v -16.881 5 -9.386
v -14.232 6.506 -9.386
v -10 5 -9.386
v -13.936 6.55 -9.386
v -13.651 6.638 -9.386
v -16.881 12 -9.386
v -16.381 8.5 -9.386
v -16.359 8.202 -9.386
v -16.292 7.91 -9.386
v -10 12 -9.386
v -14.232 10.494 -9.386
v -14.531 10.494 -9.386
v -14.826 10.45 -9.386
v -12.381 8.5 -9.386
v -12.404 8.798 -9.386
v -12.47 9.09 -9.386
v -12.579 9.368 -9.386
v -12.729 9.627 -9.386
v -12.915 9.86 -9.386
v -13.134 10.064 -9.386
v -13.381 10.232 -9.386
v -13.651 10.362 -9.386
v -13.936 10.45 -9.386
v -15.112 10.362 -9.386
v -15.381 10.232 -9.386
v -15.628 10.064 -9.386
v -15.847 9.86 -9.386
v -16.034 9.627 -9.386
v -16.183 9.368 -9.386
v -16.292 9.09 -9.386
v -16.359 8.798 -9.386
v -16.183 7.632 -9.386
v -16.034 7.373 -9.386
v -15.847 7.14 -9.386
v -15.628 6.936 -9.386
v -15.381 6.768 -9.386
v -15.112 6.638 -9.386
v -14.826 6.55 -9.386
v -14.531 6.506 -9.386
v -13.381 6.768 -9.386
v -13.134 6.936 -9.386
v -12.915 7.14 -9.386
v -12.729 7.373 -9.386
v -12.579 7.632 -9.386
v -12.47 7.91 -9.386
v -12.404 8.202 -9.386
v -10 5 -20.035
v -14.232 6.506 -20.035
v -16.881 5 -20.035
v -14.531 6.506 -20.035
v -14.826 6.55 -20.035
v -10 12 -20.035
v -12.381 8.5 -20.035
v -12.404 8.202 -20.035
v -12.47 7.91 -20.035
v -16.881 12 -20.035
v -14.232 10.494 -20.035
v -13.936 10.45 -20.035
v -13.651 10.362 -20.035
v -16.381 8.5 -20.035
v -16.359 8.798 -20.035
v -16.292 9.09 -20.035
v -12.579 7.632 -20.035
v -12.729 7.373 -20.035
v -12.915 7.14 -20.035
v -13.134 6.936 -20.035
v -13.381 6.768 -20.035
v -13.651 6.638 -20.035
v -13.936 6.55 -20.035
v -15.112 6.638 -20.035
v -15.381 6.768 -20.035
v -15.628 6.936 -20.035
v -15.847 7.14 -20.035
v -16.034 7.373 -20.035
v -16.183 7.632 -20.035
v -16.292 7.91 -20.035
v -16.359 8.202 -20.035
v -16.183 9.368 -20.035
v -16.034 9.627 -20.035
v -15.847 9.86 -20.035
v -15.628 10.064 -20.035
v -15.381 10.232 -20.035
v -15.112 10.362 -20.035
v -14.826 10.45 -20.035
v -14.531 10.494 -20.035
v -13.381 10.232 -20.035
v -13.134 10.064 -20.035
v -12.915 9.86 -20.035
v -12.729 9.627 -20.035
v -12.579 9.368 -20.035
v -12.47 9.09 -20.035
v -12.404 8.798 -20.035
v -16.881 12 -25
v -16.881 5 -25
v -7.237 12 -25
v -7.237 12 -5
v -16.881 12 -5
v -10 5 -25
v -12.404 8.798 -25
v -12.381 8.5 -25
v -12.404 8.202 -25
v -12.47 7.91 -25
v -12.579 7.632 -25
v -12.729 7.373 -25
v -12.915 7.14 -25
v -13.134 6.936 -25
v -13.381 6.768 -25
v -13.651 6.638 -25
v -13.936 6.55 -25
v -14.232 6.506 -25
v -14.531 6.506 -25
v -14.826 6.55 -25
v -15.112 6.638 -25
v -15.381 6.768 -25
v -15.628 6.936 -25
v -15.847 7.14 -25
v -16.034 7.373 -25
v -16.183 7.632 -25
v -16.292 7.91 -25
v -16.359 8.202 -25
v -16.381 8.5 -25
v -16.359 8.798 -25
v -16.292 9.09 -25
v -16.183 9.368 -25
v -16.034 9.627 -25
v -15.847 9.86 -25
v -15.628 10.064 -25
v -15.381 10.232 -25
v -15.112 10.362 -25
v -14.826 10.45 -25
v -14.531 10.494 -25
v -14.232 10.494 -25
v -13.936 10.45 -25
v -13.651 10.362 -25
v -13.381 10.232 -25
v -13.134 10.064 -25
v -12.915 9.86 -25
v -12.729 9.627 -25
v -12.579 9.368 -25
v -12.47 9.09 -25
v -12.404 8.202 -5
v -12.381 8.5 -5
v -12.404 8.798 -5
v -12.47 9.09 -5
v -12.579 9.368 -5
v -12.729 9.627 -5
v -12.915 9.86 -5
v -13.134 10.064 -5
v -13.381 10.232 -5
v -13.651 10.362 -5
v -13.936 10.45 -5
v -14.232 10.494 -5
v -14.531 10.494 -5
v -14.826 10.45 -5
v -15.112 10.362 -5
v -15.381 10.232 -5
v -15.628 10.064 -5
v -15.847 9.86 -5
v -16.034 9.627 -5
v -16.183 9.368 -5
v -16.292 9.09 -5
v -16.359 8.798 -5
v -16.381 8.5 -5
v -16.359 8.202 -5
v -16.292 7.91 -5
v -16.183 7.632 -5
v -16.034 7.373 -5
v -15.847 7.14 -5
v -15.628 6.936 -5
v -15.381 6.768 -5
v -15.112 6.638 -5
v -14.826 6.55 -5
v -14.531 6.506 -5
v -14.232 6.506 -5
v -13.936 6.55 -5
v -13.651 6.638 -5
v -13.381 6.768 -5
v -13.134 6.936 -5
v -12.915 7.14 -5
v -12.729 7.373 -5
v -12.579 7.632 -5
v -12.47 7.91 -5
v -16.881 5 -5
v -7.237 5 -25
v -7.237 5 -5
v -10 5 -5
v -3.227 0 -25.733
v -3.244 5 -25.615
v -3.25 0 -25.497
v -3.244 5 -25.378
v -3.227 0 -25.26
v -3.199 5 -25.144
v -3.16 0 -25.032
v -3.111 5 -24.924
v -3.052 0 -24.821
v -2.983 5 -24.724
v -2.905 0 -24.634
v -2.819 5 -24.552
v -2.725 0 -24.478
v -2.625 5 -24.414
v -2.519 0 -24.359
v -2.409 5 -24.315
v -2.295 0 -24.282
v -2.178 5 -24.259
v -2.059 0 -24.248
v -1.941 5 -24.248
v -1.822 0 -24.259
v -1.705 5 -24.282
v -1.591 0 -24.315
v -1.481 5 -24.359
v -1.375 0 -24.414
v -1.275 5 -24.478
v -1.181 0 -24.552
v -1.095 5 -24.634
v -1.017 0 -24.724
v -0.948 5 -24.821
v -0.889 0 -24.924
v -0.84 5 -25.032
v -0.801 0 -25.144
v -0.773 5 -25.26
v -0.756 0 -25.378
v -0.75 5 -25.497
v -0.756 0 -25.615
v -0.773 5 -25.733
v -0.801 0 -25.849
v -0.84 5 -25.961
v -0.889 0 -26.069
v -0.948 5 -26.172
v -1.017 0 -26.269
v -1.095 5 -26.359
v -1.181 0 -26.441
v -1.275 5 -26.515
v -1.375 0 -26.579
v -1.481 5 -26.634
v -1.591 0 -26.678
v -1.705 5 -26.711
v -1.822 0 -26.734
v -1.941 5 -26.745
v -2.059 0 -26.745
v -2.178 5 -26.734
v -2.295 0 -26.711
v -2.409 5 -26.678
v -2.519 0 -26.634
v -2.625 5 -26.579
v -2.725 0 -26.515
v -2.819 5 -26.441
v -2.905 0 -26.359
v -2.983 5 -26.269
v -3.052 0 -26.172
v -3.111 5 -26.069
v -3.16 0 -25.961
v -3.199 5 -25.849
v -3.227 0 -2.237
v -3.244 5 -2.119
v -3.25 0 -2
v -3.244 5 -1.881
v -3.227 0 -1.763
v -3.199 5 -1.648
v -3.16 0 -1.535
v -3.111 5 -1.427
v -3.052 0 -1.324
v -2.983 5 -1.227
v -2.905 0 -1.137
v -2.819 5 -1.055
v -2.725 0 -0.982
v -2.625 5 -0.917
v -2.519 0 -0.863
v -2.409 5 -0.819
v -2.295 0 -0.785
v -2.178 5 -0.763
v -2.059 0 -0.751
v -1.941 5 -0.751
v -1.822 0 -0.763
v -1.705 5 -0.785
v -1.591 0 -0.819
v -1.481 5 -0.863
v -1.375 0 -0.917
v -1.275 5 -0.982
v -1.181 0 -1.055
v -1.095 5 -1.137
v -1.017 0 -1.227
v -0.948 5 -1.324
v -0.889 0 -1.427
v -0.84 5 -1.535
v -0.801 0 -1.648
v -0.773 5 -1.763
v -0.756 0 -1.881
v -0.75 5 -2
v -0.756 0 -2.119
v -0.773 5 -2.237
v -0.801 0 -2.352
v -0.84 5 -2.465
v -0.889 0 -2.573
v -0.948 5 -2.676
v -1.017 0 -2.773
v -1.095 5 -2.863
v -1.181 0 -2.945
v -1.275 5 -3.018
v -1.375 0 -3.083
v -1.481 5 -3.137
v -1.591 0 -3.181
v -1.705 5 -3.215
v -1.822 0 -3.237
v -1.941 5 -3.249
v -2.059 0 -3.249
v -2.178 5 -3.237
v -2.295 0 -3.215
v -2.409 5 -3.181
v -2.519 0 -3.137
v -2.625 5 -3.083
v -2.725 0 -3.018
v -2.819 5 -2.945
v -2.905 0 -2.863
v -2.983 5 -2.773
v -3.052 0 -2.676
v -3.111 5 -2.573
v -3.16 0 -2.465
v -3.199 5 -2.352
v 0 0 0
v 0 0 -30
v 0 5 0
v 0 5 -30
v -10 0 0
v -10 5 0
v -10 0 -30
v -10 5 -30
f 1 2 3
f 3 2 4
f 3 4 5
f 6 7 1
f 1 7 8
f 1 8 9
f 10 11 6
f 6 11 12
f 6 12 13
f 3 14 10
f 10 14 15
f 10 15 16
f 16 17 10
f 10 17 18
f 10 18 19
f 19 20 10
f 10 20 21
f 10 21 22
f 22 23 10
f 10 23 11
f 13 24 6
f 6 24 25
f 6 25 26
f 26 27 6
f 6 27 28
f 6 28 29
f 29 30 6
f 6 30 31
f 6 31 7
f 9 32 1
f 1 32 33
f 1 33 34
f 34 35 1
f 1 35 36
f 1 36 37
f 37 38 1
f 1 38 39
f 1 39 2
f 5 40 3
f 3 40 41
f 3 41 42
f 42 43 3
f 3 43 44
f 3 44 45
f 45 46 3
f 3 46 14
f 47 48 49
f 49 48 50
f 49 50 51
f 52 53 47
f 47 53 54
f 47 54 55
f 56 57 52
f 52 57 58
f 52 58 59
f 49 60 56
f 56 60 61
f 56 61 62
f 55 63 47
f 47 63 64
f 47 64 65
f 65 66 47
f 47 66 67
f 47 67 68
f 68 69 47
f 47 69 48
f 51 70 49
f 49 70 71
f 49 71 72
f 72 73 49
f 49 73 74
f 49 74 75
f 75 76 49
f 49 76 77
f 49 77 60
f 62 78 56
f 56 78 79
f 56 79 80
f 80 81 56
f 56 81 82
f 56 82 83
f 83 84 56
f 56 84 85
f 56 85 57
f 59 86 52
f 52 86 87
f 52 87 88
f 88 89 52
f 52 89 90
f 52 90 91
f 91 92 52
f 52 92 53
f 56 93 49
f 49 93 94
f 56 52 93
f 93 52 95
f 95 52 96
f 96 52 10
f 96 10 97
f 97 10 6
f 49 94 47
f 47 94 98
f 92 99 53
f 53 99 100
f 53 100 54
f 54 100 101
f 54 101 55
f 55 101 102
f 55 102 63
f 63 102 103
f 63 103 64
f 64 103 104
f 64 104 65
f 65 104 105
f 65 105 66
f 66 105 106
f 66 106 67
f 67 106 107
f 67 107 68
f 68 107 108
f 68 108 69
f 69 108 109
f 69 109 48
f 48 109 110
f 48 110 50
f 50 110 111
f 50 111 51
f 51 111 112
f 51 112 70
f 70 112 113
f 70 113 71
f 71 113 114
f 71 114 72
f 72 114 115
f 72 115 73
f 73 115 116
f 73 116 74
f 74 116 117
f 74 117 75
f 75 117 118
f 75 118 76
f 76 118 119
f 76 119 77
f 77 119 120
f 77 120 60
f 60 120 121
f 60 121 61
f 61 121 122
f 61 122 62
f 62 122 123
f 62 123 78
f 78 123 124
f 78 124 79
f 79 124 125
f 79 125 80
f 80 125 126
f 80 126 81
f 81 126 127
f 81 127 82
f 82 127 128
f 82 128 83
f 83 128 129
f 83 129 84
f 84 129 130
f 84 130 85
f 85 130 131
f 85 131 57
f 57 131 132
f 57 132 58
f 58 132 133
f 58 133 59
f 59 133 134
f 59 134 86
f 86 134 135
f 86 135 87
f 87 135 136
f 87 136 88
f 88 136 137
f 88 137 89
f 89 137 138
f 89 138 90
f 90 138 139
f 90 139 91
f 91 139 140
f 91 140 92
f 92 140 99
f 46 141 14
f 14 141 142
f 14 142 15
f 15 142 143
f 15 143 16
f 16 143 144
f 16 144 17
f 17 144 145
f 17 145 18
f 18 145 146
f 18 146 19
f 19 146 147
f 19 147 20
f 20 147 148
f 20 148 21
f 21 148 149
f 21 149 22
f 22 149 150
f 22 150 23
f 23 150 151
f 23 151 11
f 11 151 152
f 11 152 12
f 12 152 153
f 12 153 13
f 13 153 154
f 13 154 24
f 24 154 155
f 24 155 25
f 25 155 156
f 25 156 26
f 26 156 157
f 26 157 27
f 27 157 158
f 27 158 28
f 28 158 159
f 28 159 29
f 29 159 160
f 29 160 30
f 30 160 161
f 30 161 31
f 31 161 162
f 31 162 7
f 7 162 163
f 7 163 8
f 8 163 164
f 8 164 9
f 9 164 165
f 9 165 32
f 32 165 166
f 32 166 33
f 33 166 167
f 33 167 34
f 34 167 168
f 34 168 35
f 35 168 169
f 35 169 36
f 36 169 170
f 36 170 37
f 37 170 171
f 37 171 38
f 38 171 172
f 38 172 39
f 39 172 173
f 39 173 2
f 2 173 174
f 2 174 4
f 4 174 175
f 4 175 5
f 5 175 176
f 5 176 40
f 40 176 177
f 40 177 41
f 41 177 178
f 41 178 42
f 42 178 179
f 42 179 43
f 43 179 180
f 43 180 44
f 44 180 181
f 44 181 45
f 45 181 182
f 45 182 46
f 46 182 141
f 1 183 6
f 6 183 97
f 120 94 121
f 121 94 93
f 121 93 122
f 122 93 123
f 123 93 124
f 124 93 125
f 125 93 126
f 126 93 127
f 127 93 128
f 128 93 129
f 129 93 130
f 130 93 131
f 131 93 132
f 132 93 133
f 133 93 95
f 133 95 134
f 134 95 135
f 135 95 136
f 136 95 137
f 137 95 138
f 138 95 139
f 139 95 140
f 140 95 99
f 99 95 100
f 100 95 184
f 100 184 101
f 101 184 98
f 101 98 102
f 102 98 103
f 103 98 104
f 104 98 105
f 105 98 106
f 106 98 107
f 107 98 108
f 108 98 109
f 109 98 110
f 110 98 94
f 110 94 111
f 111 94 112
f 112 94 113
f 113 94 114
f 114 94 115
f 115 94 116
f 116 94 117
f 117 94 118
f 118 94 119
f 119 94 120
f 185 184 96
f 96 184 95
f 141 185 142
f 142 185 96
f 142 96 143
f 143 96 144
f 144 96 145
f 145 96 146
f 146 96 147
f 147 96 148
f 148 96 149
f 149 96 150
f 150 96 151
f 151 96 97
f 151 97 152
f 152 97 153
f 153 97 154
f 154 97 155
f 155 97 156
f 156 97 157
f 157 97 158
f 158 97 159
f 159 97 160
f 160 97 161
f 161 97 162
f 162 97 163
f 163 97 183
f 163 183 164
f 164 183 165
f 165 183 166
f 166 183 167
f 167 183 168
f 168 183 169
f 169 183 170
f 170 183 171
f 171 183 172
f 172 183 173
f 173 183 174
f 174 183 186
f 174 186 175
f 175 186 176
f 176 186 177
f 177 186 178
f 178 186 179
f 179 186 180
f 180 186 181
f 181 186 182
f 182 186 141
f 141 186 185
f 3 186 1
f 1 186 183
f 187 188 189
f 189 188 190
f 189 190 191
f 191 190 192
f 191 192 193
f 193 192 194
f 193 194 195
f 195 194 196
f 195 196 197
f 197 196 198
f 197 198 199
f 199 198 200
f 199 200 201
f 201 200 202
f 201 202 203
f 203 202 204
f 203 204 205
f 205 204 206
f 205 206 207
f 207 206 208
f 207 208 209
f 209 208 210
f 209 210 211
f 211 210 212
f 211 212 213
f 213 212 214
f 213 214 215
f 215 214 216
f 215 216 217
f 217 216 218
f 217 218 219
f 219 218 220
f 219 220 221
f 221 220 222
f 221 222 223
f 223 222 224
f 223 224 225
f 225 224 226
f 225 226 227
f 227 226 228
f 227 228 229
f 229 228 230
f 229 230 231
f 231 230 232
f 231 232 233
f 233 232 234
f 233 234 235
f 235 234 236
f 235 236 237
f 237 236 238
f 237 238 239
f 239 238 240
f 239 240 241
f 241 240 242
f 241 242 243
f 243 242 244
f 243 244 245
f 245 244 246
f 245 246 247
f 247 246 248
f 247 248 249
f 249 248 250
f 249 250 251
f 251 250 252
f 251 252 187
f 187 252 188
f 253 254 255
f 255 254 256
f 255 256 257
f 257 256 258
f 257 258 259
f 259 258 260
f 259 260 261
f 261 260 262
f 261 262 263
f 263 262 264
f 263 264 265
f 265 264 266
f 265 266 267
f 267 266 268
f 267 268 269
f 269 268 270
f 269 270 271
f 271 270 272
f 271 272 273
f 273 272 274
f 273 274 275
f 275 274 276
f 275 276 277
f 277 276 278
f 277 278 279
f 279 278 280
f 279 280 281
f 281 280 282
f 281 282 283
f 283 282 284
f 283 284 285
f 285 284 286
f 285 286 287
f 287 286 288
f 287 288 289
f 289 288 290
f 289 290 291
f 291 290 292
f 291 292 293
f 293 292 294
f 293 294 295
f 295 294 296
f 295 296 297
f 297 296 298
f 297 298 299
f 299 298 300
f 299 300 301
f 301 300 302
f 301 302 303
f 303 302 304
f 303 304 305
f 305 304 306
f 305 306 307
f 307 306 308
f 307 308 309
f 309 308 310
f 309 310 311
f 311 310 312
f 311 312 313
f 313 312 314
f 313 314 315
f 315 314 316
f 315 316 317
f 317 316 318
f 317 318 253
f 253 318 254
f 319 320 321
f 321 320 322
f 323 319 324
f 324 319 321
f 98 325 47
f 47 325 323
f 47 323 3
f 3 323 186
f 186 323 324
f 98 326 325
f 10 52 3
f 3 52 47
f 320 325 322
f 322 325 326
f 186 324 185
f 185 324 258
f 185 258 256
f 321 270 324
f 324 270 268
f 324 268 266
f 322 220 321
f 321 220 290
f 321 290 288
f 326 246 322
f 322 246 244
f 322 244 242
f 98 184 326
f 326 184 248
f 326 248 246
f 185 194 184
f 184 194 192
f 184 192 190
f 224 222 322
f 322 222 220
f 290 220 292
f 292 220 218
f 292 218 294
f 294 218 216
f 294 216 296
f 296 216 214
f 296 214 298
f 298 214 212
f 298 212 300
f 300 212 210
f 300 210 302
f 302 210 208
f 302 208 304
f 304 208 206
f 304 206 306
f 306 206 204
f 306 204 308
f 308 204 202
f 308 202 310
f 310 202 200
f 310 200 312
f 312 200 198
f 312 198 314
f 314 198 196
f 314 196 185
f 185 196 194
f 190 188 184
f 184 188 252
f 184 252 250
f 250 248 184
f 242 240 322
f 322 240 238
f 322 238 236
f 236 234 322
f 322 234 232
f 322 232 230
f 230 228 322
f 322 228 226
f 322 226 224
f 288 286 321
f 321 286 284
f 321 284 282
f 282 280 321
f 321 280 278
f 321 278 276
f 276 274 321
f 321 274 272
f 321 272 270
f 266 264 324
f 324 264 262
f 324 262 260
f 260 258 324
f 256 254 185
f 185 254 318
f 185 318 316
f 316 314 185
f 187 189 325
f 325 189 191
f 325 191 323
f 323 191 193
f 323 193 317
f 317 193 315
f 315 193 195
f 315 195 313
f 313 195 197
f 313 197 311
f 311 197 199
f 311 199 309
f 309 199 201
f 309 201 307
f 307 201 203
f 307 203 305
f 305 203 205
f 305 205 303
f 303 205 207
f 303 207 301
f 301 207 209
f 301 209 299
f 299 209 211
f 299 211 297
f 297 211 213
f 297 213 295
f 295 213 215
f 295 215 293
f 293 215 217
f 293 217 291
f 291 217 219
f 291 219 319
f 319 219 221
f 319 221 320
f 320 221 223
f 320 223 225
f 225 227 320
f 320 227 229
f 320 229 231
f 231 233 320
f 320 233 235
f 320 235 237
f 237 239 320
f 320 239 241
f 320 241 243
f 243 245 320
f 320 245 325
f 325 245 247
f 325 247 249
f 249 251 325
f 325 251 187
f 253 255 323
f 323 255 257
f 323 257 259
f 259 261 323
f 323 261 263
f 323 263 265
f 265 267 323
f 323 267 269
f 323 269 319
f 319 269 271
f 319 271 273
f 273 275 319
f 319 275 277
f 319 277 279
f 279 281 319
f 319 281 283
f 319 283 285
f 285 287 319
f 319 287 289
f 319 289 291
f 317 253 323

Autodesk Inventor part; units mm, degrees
ref_plane "YZ Plane" through (0, 0, 0) normal (1, 0, 0) x (0, 1, 0)
ref_plane "XZ Plane" through (0, 0, 0) normal (0, 1, 0) x (-1, 0, 0)
ref_plane "XY Plane" through (0, 0, 0) normal (0, 0, 1) x (1, 0, 0)
sketch "Sketch1" plane through (0, 0, 0) normal (0, 1, 0) x (-1, 0, 0)
  line L0 (0, 0) -> (10, 0)
  line L1 (10, 0) -> (10, -30)
  line L2 (10, -30) -> (0, -30)
  line L3 (0, -30) -> (0, 0)
  dimension "d0" = 30
  dimension "d1" = 10
extrude "Extrusion1" add sketch "Sketch1" along normal blind 5
sketch "Sketch2" plane through (0, 5, 0) normal (0, 1, 0) x (1, 0, 0)
  circle A0 centre (-2, 2) radius 1.25
  circle A1 centre (-2, 25.4965) radius 1.25
  line L0 (0, 0) -> (0, 30) projected
  line L1 (-10, 0) -> (0, 0) projected
  dimension "d4" = 2.5
  dimension "d5" = 2.5
  dimension "d6" = 23.4965
  dimension "d7" = 2
  dimension "d8" = 2
extrude "Extrusion2" cut sketch "Sketch2" against normal through all
sketch "Sketch3" plane through (0, 5, 0) normal (0, 1, 0) x (1, 0, 0)
  line L0 (-10, 30) -> (-10, 0) projected
  line L1 (-10, 5) -> (-10, 25)
  line L2 (-10, 25) -> (-16.8813, 25)
  line L3 (-16.8813, 25) -> (-16.8813, 5)
  line L4 (-16.8813, 5) -> (-10, 5)
  line L5 (-7.2371, 5) -> (-7.2371, 25)
  line L6 (-7.2371, 25) -> (-10, 25)
  line L7 (-10, 5) -> (-7.2371, 5)
  line L8 (-10, 0) -> (0, 0) projected
  dimension "d11" = 20
  dimension "d22" = 5
extrude "Extrusion3" add sketch "Sketch3" along normal blind 7
sketch "Sketch4" plane through (-10, 5, -25) normal (0, 0, -1) x (-1, 0, 0)
  circle A0 centre (4.3813, 3.5) radius 2
  line L0 (6.8813, 0) -> (6.8813, 7) projected
  point P0 (-10, -5)
  dimension "d14" = 4
  dimension "d15" = 2.5
extrude "Extrusion4" cut sketch "Sketch4" against normal through all
sketch "Sketch5" plane through (0, 12, 0) normal (0, 1, 0) x (1, 0, 0)
  line L0 (-16.8813, 25) -> (-16.8813, 5) projected
  line L1 (-10, 30) -> (-10, 0) projected
  line L2 (-16.8813, 10) -> (-10, 10)
  line L3 (-10, 10) -> (-10, 19.25)
  line L4 (-10, 19.25) -> (-16.8813, 19.25)
  line L5 (-16.8813, 19.25) -> (-16.8813, 10)
  line L6 (-16.8813, 5) -> (-7.2371, 5) projected
  point P0 (0, 0)
  point P1 (-16.8813, 19.25)
  point P2 (-10, 10)
  dimension "d18" = 9.25
  dimension "d19" = 5
extrude "Extrusion5" cut sketch "Sketch5" against normal through all contours L4 L1 L2 L0
sketch "Sketch6" plane through (0, 12, 0) normal (0, 1, 0) x (1, 0, 0)
  line L0 (-16.8813, 10) -> (-16.8813, 5) projected
  line L1 (-10, 30) -> (-10, 0) projected
  line L2 (-16.8813, 9.3856) -> (-10, 9.3856)
  line L3 (-10, 9.3856) -> (-10, 20.0346)
  line L4 (-10, 20.0346) -> (-16.8813, 20.0346)
  line L5 (-16.8813, 20.0346) -> (-16.8813, 9.3856)
  point P0 (0, 0)
extrude "Extrusion6" cut sketch "Sketch6" against normal through all
properties part number "test hålare_3DPrint"
